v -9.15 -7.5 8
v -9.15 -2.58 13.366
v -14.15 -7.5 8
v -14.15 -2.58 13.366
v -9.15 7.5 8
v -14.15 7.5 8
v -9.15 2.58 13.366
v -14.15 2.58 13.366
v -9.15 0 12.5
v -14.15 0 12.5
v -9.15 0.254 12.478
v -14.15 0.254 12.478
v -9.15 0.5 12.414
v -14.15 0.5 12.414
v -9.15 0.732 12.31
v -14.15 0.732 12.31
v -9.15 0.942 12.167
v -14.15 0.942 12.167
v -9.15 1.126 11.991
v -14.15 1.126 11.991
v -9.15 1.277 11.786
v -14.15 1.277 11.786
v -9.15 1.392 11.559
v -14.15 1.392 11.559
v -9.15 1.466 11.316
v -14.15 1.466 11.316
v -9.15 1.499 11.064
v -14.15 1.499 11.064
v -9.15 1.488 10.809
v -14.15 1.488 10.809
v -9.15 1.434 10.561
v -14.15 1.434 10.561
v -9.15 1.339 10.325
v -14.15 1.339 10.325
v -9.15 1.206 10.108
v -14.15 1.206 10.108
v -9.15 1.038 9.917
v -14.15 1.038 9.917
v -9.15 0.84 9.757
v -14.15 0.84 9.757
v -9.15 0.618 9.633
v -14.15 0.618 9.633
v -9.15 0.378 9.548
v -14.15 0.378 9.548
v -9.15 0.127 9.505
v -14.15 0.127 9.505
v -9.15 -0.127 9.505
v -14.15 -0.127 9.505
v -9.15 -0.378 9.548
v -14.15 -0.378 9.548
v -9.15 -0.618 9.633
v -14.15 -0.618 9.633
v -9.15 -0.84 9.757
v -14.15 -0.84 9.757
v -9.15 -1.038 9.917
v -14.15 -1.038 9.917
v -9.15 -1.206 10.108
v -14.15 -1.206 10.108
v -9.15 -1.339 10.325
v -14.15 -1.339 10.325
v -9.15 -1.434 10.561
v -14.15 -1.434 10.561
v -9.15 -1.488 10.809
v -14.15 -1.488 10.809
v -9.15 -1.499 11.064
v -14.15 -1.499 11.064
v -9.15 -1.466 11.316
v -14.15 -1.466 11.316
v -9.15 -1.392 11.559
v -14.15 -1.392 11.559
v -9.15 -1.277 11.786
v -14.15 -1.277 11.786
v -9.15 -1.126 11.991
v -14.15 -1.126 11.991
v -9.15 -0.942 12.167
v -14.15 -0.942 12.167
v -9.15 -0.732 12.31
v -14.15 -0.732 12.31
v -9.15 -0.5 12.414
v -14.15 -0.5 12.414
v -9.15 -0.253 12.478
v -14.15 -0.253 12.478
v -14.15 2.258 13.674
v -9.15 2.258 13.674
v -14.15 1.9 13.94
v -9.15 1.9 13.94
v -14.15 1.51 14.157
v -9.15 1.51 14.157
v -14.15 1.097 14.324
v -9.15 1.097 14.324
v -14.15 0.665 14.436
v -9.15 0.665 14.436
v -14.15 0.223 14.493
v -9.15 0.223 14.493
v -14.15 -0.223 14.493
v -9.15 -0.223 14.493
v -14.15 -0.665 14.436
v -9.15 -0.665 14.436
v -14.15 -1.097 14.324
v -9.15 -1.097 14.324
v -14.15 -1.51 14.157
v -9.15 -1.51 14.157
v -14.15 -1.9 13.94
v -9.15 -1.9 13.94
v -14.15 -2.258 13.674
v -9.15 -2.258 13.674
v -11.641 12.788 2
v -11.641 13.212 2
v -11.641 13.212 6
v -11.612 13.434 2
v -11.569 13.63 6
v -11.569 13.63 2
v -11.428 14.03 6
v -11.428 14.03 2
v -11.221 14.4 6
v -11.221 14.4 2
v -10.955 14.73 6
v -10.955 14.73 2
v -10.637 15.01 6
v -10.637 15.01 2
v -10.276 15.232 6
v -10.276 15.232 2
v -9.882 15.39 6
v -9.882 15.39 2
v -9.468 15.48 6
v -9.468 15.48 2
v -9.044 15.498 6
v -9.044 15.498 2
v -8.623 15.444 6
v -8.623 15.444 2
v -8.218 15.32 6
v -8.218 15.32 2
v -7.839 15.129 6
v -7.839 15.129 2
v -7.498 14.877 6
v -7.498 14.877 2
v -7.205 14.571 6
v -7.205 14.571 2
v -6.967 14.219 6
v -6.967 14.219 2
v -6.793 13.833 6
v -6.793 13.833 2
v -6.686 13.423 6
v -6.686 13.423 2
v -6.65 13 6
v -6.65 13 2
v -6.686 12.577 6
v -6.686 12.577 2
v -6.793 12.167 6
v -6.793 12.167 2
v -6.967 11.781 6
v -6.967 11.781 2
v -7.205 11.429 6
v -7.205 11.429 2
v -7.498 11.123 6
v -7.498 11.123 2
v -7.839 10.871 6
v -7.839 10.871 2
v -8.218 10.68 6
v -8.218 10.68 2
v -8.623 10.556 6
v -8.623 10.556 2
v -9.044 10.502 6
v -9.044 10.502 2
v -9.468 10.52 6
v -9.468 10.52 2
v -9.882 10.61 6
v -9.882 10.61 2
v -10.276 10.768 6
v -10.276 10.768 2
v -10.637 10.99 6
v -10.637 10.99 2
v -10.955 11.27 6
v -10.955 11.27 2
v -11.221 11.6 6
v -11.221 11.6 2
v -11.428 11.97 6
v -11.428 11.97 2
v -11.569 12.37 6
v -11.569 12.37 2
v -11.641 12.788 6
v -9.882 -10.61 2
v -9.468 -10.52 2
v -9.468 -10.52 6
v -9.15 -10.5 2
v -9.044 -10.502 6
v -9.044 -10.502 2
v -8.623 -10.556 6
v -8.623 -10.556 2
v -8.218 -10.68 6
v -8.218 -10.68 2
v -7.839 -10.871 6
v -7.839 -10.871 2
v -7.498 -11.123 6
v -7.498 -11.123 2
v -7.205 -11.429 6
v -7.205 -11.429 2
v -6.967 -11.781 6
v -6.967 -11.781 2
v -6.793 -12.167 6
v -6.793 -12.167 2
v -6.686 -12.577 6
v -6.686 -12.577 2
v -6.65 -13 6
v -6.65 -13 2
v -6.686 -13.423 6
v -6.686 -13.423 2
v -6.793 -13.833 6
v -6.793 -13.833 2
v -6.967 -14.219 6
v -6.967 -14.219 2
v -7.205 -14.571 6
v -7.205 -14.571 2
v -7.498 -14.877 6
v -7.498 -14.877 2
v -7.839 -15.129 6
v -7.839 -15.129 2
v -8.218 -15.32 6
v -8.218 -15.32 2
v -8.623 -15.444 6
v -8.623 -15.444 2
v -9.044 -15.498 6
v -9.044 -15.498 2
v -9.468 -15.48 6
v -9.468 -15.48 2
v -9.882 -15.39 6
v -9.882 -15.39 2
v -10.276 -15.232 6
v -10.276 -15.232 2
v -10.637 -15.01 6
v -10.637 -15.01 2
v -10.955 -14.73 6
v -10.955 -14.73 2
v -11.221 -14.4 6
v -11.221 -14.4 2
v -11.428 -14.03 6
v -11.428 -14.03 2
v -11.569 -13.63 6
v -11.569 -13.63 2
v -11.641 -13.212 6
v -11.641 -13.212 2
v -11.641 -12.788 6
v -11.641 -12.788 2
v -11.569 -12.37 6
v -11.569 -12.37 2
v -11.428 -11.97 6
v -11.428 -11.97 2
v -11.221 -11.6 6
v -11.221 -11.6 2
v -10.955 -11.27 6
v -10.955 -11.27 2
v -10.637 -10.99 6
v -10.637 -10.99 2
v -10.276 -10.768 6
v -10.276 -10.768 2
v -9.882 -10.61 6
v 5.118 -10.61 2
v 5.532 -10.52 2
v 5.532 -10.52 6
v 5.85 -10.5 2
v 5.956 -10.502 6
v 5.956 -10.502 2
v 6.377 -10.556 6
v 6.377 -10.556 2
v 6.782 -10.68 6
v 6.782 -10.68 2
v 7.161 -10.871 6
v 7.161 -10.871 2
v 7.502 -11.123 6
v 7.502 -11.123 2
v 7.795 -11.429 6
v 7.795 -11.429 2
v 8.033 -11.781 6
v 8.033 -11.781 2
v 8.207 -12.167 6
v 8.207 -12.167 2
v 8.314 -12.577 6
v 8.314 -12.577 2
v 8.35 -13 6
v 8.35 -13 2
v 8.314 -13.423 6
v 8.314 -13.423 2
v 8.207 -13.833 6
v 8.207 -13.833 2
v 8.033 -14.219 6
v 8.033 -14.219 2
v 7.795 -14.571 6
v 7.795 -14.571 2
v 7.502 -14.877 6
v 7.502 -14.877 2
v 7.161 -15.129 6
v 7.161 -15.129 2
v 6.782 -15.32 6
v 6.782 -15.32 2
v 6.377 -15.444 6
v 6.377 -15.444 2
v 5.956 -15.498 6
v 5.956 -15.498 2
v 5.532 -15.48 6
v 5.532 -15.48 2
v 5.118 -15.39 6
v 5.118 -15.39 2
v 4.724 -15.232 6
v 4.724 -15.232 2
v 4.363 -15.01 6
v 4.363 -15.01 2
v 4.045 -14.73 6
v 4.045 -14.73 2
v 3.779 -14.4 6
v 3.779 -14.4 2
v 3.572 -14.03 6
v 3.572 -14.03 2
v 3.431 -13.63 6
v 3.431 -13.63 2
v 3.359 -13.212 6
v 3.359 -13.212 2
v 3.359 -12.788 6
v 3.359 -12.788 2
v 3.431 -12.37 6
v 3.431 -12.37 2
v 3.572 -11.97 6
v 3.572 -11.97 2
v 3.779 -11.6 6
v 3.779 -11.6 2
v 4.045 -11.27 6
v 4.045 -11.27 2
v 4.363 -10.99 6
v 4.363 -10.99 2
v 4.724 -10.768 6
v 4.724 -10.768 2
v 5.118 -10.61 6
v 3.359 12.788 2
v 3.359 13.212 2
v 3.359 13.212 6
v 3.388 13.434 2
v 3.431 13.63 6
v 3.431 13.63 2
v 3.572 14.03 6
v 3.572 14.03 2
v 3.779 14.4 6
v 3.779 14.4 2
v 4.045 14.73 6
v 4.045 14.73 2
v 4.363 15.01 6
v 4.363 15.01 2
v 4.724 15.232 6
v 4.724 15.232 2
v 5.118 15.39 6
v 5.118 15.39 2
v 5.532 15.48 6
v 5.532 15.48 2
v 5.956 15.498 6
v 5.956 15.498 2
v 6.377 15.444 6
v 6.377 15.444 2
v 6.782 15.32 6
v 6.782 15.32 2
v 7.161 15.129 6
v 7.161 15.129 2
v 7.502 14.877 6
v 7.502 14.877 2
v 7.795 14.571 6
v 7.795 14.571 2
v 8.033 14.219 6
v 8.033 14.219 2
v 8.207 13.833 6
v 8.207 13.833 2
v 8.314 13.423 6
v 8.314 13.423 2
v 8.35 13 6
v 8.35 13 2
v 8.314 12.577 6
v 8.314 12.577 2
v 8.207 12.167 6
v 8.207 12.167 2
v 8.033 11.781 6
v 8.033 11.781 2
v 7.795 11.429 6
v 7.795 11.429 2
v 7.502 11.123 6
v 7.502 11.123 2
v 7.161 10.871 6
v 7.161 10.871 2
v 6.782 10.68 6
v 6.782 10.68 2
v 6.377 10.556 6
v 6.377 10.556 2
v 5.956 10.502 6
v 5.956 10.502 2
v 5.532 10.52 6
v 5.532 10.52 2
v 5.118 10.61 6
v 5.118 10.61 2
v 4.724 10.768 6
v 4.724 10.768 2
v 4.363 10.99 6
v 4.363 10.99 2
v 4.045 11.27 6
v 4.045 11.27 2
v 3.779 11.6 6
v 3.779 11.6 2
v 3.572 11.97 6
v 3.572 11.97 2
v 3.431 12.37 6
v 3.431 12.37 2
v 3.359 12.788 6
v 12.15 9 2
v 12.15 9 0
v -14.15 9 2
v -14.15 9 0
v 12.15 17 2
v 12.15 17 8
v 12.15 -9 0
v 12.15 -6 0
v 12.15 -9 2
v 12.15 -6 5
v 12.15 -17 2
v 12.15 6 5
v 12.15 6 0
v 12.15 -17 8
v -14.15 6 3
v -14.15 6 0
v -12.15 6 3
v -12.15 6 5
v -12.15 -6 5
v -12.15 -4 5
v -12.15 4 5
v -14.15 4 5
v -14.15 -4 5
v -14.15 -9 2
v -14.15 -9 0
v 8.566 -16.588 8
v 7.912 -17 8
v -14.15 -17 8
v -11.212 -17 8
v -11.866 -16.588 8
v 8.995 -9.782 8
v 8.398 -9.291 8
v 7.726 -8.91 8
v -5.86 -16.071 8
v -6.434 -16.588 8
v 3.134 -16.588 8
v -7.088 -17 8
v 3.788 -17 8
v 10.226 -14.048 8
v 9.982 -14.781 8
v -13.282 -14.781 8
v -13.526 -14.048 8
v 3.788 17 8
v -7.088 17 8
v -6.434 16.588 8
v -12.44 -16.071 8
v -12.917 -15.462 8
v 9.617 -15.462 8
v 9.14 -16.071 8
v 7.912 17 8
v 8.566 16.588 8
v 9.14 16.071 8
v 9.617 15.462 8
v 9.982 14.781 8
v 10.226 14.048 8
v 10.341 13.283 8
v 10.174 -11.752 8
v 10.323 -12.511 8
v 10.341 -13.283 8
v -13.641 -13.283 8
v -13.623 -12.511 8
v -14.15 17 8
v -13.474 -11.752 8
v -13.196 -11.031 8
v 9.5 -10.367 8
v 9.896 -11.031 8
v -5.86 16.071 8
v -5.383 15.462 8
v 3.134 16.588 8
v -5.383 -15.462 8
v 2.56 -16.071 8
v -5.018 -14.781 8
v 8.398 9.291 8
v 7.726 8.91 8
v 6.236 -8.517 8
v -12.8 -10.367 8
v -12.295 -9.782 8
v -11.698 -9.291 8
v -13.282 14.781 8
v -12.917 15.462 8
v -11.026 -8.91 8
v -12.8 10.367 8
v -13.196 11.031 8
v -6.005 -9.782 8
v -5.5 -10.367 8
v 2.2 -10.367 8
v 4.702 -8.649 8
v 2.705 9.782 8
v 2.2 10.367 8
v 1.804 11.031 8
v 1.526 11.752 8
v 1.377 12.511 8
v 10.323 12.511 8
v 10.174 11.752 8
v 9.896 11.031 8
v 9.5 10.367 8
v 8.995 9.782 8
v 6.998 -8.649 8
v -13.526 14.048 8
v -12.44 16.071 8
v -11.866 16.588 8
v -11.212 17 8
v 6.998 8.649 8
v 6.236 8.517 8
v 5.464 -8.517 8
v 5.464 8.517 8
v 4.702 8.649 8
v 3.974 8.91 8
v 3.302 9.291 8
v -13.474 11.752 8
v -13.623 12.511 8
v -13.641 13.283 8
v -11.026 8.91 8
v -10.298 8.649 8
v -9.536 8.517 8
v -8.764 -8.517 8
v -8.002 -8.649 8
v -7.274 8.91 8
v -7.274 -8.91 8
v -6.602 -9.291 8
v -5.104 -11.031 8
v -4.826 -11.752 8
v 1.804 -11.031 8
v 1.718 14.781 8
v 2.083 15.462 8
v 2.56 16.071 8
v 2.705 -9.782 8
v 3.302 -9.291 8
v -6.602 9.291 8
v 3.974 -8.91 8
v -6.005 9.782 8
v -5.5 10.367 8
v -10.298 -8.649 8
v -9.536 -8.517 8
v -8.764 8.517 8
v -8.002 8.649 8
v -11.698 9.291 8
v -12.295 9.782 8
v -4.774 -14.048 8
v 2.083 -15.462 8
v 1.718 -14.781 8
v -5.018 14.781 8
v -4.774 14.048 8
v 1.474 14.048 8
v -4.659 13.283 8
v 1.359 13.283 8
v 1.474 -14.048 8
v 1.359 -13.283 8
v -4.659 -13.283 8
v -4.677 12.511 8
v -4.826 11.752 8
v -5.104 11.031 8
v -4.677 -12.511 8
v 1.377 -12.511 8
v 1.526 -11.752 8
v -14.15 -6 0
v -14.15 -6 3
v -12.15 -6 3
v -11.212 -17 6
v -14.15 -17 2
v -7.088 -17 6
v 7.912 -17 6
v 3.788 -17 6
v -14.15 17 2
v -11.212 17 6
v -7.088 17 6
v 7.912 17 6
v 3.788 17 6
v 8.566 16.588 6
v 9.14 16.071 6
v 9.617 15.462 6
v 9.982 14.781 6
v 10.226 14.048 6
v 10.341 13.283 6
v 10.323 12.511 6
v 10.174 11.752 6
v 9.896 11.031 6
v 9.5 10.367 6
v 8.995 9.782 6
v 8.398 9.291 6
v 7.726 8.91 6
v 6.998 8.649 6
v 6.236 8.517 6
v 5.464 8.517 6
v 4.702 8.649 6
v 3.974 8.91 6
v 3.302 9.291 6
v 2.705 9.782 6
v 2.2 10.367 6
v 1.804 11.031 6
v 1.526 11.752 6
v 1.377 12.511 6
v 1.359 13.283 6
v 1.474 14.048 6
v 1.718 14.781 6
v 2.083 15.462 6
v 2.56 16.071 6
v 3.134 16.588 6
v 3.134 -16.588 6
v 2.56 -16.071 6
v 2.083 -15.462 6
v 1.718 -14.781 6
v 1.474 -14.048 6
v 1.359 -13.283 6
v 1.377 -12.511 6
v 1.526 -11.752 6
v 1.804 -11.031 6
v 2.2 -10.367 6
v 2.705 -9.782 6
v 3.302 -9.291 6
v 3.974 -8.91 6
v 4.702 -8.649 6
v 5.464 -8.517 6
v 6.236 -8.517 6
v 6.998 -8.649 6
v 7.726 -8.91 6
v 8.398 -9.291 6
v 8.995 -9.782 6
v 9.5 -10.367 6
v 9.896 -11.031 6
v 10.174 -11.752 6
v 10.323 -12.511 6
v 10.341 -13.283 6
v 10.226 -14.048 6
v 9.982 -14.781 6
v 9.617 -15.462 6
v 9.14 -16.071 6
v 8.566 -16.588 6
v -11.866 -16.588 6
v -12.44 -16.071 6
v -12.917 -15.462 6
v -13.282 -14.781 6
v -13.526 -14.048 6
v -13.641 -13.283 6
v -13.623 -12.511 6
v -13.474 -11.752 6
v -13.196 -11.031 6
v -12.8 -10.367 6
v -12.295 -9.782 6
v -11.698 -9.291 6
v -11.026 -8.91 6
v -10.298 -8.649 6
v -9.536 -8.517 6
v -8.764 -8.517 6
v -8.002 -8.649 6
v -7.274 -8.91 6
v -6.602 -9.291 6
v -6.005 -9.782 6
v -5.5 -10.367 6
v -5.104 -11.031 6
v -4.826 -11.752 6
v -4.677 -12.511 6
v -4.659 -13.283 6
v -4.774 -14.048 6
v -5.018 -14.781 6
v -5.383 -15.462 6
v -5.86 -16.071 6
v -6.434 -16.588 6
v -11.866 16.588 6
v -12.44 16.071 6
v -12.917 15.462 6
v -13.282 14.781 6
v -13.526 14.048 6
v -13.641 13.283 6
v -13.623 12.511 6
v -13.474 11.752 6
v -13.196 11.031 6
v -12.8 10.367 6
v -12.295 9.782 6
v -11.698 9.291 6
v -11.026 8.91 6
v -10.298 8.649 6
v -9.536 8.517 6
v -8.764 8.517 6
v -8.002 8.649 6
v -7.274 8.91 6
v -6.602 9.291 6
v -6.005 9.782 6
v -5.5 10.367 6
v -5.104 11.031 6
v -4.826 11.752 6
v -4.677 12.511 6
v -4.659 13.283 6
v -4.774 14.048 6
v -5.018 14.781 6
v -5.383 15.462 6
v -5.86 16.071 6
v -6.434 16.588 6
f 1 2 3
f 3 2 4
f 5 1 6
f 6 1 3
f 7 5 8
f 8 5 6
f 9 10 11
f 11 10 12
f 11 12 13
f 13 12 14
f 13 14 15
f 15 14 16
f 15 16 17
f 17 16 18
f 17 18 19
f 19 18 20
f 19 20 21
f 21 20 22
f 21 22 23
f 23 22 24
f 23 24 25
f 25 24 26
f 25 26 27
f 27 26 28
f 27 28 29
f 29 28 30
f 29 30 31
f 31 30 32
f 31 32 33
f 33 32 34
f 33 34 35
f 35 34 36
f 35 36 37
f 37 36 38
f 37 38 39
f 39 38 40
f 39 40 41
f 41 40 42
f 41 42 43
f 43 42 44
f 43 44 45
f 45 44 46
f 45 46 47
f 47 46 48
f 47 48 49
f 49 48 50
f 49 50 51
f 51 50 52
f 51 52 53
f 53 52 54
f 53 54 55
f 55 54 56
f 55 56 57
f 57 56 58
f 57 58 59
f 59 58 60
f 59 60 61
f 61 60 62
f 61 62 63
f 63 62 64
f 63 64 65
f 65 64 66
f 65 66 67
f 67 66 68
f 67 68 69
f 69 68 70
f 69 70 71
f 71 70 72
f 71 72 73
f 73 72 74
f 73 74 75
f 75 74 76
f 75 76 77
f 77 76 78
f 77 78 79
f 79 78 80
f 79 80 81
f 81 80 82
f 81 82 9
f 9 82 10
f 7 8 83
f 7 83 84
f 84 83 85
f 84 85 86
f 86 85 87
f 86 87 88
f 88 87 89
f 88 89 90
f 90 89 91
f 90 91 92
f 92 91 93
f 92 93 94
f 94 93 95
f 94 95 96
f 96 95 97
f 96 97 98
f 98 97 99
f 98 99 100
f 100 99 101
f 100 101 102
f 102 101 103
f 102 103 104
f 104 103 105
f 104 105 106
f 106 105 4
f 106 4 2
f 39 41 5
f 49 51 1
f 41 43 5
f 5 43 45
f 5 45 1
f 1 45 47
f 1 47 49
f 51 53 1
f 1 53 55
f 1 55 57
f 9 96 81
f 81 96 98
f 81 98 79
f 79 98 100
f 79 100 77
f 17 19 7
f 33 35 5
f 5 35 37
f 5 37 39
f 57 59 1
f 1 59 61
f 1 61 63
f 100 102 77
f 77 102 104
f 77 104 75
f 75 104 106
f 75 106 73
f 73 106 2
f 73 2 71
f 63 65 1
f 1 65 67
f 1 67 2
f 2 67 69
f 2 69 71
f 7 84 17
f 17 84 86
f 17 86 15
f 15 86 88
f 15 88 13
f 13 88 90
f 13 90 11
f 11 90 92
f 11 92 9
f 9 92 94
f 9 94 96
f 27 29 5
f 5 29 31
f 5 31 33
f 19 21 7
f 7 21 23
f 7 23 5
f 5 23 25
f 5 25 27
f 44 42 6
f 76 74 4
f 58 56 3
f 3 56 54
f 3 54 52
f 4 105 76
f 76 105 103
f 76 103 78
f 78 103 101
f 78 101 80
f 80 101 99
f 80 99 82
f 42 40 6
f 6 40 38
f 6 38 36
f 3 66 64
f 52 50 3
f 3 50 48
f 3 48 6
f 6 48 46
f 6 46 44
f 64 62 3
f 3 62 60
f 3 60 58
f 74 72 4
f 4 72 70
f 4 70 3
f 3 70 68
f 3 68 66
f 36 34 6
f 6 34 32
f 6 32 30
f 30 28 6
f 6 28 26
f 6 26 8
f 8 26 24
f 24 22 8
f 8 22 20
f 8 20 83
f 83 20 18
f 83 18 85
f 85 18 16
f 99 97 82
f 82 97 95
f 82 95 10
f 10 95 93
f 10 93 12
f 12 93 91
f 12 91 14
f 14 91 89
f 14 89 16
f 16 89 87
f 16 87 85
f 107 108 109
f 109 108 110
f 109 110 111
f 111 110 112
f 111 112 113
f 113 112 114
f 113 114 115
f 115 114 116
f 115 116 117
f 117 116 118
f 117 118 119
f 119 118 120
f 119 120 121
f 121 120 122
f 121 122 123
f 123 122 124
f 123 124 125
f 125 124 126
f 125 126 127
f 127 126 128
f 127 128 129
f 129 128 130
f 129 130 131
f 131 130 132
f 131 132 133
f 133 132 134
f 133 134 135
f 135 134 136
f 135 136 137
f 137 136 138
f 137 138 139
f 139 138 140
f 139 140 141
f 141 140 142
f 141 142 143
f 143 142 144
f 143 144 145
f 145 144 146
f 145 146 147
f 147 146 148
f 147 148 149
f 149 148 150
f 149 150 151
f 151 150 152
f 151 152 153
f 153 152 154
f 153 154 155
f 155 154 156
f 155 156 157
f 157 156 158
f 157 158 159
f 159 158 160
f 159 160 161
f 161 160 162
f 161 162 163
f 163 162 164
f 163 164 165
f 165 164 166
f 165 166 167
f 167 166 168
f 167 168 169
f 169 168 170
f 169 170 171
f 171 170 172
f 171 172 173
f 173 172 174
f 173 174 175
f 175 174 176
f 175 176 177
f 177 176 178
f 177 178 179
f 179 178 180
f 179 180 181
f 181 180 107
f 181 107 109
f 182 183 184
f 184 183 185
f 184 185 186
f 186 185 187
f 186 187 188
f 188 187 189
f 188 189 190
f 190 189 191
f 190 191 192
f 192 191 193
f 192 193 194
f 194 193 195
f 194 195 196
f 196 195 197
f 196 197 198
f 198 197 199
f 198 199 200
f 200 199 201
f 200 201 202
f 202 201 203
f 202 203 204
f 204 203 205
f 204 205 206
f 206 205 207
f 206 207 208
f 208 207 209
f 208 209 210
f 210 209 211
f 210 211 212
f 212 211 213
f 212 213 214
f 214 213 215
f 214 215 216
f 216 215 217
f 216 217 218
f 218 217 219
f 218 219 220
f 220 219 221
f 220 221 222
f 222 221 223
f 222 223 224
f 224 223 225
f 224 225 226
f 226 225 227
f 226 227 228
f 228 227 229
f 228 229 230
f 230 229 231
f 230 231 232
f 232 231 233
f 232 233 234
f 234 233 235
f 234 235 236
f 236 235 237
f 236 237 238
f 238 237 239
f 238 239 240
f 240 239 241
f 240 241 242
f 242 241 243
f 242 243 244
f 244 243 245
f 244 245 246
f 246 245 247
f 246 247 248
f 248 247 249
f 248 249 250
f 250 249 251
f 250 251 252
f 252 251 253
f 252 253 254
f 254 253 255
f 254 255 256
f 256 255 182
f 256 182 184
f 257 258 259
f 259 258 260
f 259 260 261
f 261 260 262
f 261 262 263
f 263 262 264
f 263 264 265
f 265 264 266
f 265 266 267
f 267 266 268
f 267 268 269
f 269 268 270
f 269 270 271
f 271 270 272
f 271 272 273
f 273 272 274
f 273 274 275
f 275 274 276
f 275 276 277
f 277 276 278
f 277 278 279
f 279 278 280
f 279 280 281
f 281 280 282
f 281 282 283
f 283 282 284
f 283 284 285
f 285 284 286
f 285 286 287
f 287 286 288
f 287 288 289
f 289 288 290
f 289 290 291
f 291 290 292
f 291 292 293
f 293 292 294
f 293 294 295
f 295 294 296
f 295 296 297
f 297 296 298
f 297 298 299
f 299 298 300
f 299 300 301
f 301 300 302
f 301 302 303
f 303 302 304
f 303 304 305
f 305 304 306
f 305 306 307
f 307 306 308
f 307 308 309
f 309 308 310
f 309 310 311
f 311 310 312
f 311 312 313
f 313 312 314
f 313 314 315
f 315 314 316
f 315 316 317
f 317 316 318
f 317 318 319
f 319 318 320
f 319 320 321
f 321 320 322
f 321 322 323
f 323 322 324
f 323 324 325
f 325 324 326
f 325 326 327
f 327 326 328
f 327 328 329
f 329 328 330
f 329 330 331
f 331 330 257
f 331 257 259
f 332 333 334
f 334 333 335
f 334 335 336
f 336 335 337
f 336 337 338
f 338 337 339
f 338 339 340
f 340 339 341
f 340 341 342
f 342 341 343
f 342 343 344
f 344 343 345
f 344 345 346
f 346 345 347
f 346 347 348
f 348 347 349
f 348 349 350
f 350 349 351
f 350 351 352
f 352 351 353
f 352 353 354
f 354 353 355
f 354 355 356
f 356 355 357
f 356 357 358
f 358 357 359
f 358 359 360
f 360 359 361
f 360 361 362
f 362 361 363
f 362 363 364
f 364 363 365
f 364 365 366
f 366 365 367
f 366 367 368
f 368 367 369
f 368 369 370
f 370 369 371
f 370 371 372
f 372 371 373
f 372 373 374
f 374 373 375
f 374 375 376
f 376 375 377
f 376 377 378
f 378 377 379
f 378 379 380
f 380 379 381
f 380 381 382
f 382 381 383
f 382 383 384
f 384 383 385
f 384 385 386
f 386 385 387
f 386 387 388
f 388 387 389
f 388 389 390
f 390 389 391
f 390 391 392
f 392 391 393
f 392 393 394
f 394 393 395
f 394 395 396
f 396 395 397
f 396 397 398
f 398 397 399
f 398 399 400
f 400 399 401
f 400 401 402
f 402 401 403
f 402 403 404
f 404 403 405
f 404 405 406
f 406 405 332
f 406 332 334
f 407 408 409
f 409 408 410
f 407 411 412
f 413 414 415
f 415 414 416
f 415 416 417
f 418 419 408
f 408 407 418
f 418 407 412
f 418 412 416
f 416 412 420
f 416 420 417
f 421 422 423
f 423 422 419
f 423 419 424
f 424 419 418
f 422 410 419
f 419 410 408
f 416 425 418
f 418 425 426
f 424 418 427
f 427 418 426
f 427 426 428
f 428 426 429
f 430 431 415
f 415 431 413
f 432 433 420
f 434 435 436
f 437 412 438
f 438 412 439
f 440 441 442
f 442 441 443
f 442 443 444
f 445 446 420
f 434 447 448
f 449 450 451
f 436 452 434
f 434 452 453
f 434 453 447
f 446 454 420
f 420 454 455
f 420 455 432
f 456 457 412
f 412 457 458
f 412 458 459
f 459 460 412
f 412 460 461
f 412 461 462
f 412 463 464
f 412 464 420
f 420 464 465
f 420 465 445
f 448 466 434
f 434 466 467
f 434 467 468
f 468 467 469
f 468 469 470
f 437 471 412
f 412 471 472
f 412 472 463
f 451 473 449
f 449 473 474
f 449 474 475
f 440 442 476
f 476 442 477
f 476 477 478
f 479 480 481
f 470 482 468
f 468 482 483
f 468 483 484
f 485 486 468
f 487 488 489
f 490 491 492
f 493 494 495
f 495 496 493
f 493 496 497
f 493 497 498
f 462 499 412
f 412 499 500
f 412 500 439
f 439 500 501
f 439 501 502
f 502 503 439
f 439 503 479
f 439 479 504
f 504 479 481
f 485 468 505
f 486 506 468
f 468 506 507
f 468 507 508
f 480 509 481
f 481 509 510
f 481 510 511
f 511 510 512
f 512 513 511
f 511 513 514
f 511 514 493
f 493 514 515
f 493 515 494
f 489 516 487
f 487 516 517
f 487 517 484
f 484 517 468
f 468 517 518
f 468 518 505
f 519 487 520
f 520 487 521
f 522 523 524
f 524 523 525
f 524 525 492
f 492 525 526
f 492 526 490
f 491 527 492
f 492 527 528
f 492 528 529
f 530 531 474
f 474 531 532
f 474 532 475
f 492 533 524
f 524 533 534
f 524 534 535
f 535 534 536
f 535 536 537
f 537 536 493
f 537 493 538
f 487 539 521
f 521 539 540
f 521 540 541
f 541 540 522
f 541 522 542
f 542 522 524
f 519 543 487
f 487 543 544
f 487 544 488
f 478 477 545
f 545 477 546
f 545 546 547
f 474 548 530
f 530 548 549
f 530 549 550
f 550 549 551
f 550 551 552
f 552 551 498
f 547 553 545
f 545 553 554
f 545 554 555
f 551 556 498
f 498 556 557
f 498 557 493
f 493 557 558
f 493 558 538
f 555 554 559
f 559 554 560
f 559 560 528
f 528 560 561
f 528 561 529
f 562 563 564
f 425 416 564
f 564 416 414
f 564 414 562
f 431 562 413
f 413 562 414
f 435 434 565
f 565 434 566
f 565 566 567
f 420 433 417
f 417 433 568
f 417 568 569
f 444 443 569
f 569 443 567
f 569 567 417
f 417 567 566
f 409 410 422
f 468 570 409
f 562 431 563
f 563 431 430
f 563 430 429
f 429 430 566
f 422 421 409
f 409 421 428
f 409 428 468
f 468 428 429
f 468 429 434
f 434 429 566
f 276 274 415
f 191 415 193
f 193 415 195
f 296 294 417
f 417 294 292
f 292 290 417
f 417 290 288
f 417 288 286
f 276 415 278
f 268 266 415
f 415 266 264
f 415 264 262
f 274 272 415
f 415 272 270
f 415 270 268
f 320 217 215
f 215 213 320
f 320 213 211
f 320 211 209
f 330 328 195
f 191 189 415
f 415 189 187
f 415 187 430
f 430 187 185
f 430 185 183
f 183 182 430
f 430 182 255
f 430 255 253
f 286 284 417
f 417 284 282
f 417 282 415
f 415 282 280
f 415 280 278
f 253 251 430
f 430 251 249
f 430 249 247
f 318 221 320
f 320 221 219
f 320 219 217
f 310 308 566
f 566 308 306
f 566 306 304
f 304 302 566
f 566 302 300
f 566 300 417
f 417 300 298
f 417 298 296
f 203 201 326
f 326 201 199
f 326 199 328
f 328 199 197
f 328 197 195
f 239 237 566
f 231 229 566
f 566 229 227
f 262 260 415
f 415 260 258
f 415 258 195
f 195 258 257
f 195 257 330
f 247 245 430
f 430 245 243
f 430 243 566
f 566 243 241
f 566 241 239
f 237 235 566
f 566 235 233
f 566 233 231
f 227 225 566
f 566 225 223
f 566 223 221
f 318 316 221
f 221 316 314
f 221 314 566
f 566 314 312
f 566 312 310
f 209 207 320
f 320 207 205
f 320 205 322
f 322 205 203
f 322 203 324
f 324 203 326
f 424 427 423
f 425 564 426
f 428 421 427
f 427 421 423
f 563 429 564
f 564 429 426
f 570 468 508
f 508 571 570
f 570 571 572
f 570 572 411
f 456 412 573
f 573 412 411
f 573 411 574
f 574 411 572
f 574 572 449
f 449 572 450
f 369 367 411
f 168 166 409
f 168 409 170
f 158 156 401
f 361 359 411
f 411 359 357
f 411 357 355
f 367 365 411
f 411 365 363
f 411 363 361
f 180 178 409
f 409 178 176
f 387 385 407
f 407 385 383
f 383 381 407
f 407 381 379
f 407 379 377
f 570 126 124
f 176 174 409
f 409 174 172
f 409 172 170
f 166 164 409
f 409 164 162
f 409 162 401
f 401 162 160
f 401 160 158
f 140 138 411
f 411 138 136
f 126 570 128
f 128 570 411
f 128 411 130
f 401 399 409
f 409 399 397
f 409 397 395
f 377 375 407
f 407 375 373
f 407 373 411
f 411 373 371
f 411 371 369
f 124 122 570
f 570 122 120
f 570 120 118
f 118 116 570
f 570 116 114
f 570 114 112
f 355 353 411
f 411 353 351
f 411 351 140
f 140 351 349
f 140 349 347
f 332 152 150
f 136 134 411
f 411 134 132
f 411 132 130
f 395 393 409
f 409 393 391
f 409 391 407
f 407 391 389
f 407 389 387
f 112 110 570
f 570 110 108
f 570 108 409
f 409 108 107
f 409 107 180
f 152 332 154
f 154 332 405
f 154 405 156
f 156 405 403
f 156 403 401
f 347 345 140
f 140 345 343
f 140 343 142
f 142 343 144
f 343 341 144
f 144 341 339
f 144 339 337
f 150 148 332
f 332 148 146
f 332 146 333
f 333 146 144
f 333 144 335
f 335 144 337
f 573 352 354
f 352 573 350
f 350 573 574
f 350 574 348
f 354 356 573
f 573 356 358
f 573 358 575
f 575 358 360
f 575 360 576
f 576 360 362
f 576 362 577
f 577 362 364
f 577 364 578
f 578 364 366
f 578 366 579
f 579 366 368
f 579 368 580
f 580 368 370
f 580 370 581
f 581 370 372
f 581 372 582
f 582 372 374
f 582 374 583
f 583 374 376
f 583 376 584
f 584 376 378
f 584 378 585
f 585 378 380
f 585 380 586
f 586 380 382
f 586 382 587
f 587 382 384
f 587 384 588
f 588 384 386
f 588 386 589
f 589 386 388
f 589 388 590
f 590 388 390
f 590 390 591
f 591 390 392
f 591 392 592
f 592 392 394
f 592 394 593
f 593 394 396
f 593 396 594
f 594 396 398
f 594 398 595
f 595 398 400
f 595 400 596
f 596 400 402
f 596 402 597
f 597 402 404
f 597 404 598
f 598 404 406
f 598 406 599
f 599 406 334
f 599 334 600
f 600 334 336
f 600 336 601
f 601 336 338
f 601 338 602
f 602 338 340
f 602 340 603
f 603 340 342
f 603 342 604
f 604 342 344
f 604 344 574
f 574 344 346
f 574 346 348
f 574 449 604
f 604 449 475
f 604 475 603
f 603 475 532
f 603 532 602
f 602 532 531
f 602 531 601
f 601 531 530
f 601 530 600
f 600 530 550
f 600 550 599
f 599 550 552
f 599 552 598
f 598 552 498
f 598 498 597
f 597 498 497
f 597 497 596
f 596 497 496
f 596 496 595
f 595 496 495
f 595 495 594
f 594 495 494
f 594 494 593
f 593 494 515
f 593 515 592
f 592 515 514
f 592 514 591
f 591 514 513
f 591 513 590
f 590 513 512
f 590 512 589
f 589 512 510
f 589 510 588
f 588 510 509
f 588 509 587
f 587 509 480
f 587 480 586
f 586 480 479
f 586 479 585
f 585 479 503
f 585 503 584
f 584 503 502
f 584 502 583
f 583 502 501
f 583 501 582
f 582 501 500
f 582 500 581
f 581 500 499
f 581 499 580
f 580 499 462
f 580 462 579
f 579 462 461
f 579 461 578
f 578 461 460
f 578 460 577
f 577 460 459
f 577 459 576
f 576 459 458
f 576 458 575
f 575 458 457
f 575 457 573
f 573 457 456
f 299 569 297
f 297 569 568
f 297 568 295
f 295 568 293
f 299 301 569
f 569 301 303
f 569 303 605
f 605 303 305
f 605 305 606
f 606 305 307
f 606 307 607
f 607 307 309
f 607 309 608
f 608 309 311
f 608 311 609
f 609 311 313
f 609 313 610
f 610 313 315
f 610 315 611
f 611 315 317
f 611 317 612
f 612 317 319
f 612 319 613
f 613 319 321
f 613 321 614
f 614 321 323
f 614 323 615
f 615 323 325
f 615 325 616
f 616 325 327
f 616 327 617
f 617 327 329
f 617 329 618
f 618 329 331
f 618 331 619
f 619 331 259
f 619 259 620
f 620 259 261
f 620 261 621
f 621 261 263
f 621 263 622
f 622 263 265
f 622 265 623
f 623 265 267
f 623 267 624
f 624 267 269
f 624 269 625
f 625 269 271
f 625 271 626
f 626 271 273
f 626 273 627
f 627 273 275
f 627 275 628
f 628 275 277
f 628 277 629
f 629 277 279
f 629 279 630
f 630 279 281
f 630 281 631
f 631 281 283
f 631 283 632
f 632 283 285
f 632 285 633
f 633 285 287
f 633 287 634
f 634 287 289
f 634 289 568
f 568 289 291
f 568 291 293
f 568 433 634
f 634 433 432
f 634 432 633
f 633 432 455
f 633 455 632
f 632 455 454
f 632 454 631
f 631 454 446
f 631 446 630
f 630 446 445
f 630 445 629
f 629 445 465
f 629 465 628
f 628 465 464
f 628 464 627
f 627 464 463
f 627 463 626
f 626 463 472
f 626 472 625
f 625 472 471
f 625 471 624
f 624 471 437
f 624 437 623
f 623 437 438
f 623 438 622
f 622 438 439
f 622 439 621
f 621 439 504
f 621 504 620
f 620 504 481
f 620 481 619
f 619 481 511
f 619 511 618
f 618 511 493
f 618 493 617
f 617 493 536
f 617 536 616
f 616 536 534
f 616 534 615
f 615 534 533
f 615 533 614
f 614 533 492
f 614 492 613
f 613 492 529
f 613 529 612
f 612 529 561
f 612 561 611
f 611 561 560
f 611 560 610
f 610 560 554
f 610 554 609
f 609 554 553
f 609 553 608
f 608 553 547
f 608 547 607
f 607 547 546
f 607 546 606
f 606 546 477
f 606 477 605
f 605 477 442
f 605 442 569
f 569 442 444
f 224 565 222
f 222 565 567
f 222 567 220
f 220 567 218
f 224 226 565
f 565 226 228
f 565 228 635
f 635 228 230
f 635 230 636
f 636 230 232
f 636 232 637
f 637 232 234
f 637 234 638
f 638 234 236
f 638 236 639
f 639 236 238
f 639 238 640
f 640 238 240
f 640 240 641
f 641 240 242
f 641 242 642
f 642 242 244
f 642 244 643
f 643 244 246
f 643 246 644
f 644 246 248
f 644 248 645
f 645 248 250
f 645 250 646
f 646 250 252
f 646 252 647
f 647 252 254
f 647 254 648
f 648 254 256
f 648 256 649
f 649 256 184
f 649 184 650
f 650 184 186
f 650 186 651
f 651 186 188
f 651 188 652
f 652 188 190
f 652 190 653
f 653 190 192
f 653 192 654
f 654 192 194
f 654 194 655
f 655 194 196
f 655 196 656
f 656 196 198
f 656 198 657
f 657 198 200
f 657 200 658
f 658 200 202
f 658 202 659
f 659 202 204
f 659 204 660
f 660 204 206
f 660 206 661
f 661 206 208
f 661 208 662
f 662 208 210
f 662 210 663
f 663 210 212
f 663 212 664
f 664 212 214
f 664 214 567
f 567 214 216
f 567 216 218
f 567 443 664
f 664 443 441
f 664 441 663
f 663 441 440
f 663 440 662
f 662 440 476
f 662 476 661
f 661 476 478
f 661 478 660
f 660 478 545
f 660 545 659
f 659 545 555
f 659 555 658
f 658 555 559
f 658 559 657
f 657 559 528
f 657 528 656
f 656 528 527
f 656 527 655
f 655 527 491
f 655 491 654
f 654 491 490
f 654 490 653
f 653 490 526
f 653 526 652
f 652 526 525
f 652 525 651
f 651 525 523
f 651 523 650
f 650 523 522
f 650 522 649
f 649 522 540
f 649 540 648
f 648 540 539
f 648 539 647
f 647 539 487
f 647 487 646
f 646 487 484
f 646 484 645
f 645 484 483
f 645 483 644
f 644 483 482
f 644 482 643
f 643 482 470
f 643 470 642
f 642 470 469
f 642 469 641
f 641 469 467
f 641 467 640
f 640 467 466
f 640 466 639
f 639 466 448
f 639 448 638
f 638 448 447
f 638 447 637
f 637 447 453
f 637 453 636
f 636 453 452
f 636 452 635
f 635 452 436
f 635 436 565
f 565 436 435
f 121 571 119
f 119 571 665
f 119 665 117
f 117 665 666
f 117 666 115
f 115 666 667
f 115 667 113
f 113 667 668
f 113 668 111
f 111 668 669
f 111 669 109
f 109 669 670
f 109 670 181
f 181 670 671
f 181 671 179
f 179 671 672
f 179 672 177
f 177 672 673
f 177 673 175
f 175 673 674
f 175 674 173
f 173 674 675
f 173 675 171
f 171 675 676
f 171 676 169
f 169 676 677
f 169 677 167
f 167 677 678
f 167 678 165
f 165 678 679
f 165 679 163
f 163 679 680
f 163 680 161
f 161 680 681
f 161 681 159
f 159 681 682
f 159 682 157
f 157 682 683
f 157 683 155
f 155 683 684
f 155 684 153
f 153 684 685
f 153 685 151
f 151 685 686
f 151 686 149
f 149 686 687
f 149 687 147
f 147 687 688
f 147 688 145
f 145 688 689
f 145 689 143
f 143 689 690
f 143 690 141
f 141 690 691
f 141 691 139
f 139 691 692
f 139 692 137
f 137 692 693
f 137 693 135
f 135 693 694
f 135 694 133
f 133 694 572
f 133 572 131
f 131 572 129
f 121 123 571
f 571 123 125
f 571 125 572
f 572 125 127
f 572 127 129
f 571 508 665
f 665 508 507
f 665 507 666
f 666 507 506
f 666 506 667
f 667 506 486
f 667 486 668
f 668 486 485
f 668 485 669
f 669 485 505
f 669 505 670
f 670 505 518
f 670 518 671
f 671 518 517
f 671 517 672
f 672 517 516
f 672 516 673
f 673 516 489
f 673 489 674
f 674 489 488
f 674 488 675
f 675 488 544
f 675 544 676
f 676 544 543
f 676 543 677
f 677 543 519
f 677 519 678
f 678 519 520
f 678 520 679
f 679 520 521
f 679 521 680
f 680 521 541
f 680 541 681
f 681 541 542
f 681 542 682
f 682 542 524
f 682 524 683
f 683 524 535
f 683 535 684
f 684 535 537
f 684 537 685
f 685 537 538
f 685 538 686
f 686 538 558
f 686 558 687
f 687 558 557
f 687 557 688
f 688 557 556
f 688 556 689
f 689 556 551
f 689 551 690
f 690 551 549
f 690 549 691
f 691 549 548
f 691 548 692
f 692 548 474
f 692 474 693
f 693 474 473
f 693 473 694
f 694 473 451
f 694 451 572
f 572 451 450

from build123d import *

# Parameters (mm, degrees)
SKETCH_1_W          = 24.3
SKETCH_1_H          = 3
EXTRUDE_1_DEPTH     = 5
EXTRUDE_1_2_DEPTH   = 5
SKETCH_2_W          = 24.3
SKETCH_2_H          = 18
EXTRUDE_2_DEPTH     = 3
EXTRUDE_3_DEPTH     = 2
SKETCH_5_W          = 26.3
SKETCH_5_H          = 8
SKETCH_5_R          = 2.5
EXTRUDE_5_DEPTH     = 6
EXTRUDE_6_DEPTH     = 5
SKETCH_7_R          = 4.5
CUT_EXTRUDE_1_DEPTH = 2


with BuildPart() as part:
    # Эскиз1 → Бобышка-Вытянуть1 (new body)
    with BuildSketch(Plane.XY):
        with Locations((0, 7.5)):
            Rectangle(SKETCH_1_W, SKETCH_1_H)
    extrude(amount=EXTRUDE_1_DEPTH)



with BuildPart() as body_2:
    # Эскиз1 → Extrude 1 2 (new body)
    with BuildSketch(Plane.XY):
        with Locations((0, -7.5)):
            Rectangle(SKETCH_1_W, SKETCH_1_H)
    extrude(amount=EXTRUDE_1_2_DEPTH)


with BuildPart() as part_1:
    add(part.part)

    add(body_2.part)  # Бобышка-Вытянуть2 merges body 2
    # Эскиз2 → Бобышка-Вытянуть2 (add)
    with BuildSketch(Plane.XY.offset(5)):
        Rectangle(SKETCH_2_W, SKETCH_2_H)
    extrude(amount=EXTRUDE_2_DEPTH)



with BuildPart() as body_2_2:
    # Эскиз3 → Бобышка-Вытянуть3 (new body)
    with BuildSketch(Plane.ZY.offset(12.15)):
        Polygon((0, -9), (0, -6), (3, -6), (5, -4), (5, 4), (3, 6), (0, 6), (0, 9), (8, 9), (8, -9), align=None)
    extrude(amount=EXTRUDE_3_DEPTH)


with BuildPart() as part_2:
    add(part_1.part)

    add(body_2_2.part)  # Бобышка-Вытянуть5 merges body 2 2
    # Эскиз5 → Бобышка-Вытянуть5 (add)
    # profile 1 of 2: a face of its own
    with BuildSketch(Plane.XY.offset(8)):
        with Locations((-1, -13)):
            Rectangle(SKETCH_5_W, SKETCH_5_H)
        with Locations((-9.15, -13)):
            Circle(SKETCH_5_R, mode=Mode.SUBTRACT)
        with Locations((5.85, -13)):
            Circle(SKETCH_5_R, mode=Mode.SUBTRACT)
    # profile 2 of 2: a face of its own
    with BuildSketch(Plane.XY.offset(8)):
        with Locations((-1, 13)):
            Rectangle(SKETCH_5_W, SKETCH_5_H)
        with Locations((5.85, 13)):
            Circle(SKETCH_5_R, mode=Mode.SUBTRACT)
        with Locations((-9.15, 13)):
            Circle(SKETCH_5_R, mode=Mode.SUBTRACT)
    extrude(amount=-EXTRUDE_5_DEPTH)

    # Эскиз7 → Вырез-Вытянуть1 (cut)
    with BuildSketch(Plane.XY.offset(8)):
        with Locations((5.85, 13)):
            Circle(SKETCH_7_R)
        with Locations((5.85, -13)):
            Circle(SKETCH_7_R)
        with Locations((-9.15, -13)):
            Circle(SKETCH_7_R)
        with Locations((-9.15, 13)):
            Circle(SKETCH_7_R)
    extrude(amount=-CUT_EXTRUDE_1_DEPTH, mode=Mode.SUBTRACT)


with BuildPart() as body_2_3:
    # Эскиз6 → Бобышка-Вытянуть6 (new body)
    with BuildSketch(Plane.ZY.offset(14.15)):
        with BuildLine():
            Line((8, -7.5), (13.36556145, -2.579557913))
            ThreePointArc((13.36556145, -2.579557913), (10.498526427, -3.463888603), (8, -1.802775638))
            Line((8, -1.802775638), (8, -7.5))
        make_face()
        with BuildLine():
            ThreePointArc((8, 1.802775638), (10.498526427, 3.463888603), (13.36556145, 2.579557913))
            Line((13.36556145, 2.579557913), (8, 7.5))
            Line((8, 7.5), (8, 1.802775638))
        make_face()
        with BuildLine():
            ThreePointArc((14.5, 0), (14.203862128, 1.408995196), (13.36556145, 2.579557913))
            ThreePointArc((13.36556145, 2.579557913), (10.498526427, 3.463888603), (8, 1.802775638))
            Line((8, 1.802775638), (8, 0))
            Line((8, 0), (9.5, 0))
            ThreePointArc((9.5, 0), (11, 1.5), (12.5, 0))
            Line((12.5, 0), (14.5, 0))
        make_face()
        with BuildLine():
            ThreePointArc((13.36556145, -2.579557913), (14.203862128, -1.408995196), (14.5, 0))
            Line((14.5, 0), (12.5, 0))
            ThreePointArc((12.5, 0), (11, -1.5), (9.5, 0))
            Line((9.5, 0), (8, 0))
            Line((8, 0), (8, -1.802775638))
            ThreePointArc((8, -1.802775638), (10.498526427, -3.463888603), (13.36556145, -2.579557913))
        make_face()
    extrude(amount=-EXTRUDE_6_DEPTH)


solid = Compound([part_2.part, body_2_3.part])
